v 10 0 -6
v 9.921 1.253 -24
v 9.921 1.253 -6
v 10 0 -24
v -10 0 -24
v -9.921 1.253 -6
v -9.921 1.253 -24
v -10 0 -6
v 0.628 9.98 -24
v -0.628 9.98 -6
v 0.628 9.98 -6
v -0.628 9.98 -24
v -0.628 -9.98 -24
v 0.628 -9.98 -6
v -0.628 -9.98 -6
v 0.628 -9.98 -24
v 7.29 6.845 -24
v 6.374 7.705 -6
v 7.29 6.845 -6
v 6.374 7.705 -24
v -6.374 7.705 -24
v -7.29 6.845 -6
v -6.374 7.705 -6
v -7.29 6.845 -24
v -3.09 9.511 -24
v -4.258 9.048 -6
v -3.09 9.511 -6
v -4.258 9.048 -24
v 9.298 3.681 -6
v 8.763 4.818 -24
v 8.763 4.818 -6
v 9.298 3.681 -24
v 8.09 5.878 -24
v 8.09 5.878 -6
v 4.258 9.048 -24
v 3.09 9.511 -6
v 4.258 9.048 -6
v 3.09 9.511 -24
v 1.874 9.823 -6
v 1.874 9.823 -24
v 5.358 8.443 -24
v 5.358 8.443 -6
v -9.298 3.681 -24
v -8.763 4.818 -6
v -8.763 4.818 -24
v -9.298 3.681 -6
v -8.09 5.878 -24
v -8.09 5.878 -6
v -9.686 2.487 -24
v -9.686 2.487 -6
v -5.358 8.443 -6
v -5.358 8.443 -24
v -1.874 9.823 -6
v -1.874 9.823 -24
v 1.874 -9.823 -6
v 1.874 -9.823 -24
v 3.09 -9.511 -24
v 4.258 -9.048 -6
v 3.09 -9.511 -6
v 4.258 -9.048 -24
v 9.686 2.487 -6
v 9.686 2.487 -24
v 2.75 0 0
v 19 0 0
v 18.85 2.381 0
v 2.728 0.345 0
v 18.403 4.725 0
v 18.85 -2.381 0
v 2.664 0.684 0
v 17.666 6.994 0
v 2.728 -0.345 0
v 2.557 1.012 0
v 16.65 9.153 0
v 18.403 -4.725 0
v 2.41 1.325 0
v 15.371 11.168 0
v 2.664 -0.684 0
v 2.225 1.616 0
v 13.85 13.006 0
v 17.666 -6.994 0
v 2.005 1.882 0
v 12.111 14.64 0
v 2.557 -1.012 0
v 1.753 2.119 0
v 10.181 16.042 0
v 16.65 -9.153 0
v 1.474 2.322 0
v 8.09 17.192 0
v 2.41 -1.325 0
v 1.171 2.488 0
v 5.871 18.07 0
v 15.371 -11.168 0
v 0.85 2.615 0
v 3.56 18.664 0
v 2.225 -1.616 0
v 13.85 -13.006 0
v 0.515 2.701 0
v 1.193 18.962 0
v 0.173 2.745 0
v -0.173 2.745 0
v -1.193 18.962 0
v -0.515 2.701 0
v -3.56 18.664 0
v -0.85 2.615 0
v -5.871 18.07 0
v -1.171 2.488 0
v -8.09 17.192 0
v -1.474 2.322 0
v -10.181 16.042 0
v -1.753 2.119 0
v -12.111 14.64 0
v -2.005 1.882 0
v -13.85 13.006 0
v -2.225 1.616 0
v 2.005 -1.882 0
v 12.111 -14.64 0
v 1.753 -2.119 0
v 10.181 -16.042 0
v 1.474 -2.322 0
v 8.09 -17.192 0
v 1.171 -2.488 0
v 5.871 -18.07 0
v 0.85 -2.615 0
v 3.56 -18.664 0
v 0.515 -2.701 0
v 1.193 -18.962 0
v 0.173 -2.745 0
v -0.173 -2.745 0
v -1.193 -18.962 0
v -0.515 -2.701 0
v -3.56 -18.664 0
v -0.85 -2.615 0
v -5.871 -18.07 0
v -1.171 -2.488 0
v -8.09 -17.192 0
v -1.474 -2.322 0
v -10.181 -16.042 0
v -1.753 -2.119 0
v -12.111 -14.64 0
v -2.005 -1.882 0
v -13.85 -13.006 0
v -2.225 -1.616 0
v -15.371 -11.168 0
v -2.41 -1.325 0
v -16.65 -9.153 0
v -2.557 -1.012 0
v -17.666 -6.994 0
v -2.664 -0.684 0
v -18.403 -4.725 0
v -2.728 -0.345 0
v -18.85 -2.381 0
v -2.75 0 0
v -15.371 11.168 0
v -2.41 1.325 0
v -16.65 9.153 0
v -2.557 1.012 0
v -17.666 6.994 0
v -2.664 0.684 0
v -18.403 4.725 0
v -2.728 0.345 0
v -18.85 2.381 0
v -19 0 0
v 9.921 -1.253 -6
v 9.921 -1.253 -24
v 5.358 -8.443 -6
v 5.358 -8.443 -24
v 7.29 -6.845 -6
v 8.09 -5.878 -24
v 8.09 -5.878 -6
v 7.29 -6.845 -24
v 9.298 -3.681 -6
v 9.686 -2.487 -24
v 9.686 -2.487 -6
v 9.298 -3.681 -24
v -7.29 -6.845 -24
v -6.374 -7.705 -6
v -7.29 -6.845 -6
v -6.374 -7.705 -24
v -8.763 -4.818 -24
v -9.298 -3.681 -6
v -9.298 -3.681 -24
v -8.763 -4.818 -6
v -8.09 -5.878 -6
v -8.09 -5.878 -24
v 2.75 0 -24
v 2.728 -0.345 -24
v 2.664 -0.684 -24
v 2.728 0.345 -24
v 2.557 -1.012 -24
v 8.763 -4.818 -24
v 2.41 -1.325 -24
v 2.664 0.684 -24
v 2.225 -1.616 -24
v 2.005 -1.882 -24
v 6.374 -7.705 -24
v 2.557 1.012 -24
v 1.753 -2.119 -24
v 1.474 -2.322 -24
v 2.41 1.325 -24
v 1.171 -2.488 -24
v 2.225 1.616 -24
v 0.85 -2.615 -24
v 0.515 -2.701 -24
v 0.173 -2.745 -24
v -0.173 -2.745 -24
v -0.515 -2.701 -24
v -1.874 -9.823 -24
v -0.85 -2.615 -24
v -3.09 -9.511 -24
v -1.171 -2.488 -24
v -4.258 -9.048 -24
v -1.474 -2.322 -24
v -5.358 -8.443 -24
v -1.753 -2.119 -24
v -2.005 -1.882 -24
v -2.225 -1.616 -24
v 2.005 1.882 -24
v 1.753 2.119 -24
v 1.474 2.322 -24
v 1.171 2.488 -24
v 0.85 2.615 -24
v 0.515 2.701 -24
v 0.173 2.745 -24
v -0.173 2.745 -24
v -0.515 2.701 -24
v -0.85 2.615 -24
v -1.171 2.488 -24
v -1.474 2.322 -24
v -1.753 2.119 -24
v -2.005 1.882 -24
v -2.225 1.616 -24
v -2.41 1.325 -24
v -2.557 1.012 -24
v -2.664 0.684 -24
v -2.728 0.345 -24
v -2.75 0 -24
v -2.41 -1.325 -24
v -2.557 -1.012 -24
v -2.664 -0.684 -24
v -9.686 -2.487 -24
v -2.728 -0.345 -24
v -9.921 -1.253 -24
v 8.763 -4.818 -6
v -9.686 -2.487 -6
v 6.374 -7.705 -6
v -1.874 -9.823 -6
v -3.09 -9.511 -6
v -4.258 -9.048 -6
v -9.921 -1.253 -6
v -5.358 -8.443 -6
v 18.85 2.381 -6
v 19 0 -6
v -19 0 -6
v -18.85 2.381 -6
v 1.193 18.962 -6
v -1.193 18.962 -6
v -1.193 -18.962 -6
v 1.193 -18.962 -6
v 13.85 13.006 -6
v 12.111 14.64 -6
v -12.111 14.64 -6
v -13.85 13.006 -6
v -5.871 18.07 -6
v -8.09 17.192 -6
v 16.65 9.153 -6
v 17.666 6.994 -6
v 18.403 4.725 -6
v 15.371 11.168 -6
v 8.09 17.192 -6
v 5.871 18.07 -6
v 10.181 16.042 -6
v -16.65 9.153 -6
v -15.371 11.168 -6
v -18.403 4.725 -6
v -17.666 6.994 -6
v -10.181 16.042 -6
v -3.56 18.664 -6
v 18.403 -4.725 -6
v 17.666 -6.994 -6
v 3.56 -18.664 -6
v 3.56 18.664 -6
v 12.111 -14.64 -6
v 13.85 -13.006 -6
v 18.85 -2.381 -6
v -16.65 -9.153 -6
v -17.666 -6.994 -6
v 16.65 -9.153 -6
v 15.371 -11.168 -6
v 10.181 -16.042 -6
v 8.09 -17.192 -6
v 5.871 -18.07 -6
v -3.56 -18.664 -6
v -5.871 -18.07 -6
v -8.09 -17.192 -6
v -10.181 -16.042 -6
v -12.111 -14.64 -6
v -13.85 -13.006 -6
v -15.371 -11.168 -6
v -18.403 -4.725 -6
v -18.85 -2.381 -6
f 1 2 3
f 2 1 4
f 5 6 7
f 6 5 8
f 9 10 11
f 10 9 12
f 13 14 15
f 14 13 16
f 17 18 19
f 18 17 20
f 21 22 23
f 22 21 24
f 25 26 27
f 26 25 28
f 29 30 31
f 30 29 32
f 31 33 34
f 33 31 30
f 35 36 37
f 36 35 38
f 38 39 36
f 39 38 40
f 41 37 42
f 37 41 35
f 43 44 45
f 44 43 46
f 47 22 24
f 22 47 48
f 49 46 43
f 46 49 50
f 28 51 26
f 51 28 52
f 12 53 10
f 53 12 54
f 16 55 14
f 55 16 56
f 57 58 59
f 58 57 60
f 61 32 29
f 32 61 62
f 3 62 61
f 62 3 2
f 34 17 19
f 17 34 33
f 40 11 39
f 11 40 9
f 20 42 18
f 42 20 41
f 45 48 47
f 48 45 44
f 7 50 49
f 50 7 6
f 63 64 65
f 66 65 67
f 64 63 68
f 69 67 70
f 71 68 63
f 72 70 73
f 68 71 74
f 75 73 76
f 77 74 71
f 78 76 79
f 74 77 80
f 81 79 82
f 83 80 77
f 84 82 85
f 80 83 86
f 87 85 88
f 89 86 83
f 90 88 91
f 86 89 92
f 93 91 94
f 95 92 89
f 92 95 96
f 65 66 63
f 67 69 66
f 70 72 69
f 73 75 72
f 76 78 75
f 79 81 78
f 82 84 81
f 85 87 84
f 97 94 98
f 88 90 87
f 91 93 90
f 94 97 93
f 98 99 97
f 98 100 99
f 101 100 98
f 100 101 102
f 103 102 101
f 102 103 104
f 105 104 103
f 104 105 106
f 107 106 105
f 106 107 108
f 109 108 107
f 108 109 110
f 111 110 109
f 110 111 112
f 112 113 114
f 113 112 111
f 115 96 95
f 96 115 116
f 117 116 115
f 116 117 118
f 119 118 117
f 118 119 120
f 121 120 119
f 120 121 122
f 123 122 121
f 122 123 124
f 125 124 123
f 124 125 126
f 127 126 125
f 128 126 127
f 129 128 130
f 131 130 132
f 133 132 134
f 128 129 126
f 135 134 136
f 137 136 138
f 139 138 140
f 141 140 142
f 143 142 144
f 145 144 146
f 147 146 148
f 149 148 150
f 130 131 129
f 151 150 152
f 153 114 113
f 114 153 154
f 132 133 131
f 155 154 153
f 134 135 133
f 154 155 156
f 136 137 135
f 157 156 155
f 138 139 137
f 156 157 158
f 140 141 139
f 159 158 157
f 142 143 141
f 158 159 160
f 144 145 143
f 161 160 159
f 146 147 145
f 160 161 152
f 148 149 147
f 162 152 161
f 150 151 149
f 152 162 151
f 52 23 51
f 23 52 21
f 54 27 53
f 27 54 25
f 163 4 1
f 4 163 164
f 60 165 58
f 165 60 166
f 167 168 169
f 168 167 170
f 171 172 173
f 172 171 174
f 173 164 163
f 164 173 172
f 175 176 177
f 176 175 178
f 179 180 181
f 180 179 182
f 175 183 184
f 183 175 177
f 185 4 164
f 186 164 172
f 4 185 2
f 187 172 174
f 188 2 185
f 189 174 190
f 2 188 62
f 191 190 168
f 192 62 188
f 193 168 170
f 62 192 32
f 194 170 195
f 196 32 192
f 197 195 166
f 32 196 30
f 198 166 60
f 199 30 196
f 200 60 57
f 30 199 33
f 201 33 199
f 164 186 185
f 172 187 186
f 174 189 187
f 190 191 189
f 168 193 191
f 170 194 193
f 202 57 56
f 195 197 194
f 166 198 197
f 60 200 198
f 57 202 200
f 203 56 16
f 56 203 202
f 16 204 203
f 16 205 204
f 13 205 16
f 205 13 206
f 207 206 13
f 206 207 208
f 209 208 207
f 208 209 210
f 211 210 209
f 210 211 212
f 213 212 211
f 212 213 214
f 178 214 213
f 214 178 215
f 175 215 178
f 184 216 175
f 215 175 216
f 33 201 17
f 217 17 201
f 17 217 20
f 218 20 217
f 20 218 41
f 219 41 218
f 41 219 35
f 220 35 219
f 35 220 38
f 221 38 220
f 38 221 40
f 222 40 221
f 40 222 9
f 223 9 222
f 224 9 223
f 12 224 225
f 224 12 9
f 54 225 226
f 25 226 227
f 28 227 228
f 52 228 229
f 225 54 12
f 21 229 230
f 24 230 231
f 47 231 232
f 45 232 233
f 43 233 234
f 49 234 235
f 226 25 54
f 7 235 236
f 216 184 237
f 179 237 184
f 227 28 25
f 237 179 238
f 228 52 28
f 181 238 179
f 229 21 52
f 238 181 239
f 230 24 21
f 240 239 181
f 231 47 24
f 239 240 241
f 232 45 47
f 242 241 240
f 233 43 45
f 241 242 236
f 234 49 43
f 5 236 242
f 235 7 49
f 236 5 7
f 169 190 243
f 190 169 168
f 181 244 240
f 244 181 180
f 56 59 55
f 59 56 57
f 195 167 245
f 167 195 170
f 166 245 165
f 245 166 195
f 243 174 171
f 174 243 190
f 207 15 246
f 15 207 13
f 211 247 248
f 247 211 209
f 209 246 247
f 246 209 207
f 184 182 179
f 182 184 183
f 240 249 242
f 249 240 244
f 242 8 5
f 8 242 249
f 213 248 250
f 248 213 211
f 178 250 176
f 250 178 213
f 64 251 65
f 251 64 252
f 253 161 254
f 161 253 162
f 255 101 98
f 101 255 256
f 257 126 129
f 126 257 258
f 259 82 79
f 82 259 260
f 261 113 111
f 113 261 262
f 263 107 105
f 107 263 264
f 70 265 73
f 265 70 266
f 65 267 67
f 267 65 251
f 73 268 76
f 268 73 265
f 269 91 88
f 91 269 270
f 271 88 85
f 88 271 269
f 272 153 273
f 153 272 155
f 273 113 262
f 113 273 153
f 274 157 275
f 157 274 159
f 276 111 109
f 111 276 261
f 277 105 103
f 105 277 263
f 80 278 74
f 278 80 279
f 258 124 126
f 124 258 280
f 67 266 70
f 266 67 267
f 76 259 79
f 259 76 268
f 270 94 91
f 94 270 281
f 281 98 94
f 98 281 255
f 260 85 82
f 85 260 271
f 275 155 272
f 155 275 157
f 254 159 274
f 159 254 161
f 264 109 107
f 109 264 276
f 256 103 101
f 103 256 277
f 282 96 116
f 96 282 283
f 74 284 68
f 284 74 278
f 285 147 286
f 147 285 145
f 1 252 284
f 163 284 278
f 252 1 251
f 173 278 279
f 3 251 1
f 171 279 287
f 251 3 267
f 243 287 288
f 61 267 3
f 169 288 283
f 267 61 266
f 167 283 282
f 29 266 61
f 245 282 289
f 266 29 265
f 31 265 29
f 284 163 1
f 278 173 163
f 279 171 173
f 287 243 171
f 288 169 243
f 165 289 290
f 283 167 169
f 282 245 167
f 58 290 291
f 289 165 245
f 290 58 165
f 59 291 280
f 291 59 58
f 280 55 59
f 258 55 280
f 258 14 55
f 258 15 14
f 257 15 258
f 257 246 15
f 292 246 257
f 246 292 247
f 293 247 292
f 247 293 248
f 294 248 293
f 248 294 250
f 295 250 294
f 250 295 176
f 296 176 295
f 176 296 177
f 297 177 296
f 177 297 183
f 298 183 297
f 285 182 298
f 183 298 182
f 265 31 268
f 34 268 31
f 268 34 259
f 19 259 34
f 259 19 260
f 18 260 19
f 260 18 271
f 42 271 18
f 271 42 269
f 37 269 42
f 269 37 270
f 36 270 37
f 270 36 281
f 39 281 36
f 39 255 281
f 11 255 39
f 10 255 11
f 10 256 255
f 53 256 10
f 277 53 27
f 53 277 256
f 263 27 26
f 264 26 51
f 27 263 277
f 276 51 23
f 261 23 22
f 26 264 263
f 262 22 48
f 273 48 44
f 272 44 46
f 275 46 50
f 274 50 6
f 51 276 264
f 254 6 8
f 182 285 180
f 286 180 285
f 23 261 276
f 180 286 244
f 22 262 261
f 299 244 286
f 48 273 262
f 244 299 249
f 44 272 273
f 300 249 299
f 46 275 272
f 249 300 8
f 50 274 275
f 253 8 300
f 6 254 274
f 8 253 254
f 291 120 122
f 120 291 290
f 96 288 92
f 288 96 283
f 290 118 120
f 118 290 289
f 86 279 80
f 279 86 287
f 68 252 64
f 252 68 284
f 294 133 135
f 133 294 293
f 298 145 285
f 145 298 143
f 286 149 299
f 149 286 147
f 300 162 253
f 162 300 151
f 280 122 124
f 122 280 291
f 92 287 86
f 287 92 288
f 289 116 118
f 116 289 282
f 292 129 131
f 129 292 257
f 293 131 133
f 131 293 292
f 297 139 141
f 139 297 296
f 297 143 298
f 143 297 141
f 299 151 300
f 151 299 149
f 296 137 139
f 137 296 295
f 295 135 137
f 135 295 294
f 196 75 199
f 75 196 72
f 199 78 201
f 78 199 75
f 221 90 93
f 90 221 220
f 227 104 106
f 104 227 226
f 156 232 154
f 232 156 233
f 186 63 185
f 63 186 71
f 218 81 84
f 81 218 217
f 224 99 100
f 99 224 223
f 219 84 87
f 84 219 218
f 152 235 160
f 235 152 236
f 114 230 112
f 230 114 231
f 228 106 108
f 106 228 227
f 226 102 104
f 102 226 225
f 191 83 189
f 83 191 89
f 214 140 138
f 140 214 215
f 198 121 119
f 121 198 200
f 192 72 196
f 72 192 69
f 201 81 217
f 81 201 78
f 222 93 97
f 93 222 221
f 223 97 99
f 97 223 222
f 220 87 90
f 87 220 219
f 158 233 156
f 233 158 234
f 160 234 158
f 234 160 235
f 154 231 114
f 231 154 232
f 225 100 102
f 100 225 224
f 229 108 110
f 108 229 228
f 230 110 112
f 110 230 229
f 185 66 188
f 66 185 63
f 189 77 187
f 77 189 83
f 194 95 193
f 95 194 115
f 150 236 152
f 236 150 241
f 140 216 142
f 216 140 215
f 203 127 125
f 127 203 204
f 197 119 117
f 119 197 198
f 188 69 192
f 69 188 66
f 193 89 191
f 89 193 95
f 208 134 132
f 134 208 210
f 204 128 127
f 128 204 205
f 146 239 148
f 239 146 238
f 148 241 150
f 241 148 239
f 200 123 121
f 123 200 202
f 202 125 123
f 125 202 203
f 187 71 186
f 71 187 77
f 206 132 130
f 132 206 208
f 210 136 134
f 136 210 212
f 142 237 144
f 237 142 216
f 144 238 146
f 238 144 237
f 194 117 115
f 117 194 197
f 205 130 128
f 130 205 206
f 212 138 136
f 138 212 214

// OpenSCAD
$fn = 50;


difference() {
	union() {
		translate(v = [0, 0, -24.0000000000]) {
			cylinder(h = 24, r = 10.0000000000);
		}
		translate(v = [0, 0, -6.0000000000]) {
			cylinder(h = 6, r = 19.0000000000);
		}
	}
	union() {
		#translate(v = [0, 0, -24]) {
			cylinder(h = 24, r = 2.7500000000);
		}
	}
}
